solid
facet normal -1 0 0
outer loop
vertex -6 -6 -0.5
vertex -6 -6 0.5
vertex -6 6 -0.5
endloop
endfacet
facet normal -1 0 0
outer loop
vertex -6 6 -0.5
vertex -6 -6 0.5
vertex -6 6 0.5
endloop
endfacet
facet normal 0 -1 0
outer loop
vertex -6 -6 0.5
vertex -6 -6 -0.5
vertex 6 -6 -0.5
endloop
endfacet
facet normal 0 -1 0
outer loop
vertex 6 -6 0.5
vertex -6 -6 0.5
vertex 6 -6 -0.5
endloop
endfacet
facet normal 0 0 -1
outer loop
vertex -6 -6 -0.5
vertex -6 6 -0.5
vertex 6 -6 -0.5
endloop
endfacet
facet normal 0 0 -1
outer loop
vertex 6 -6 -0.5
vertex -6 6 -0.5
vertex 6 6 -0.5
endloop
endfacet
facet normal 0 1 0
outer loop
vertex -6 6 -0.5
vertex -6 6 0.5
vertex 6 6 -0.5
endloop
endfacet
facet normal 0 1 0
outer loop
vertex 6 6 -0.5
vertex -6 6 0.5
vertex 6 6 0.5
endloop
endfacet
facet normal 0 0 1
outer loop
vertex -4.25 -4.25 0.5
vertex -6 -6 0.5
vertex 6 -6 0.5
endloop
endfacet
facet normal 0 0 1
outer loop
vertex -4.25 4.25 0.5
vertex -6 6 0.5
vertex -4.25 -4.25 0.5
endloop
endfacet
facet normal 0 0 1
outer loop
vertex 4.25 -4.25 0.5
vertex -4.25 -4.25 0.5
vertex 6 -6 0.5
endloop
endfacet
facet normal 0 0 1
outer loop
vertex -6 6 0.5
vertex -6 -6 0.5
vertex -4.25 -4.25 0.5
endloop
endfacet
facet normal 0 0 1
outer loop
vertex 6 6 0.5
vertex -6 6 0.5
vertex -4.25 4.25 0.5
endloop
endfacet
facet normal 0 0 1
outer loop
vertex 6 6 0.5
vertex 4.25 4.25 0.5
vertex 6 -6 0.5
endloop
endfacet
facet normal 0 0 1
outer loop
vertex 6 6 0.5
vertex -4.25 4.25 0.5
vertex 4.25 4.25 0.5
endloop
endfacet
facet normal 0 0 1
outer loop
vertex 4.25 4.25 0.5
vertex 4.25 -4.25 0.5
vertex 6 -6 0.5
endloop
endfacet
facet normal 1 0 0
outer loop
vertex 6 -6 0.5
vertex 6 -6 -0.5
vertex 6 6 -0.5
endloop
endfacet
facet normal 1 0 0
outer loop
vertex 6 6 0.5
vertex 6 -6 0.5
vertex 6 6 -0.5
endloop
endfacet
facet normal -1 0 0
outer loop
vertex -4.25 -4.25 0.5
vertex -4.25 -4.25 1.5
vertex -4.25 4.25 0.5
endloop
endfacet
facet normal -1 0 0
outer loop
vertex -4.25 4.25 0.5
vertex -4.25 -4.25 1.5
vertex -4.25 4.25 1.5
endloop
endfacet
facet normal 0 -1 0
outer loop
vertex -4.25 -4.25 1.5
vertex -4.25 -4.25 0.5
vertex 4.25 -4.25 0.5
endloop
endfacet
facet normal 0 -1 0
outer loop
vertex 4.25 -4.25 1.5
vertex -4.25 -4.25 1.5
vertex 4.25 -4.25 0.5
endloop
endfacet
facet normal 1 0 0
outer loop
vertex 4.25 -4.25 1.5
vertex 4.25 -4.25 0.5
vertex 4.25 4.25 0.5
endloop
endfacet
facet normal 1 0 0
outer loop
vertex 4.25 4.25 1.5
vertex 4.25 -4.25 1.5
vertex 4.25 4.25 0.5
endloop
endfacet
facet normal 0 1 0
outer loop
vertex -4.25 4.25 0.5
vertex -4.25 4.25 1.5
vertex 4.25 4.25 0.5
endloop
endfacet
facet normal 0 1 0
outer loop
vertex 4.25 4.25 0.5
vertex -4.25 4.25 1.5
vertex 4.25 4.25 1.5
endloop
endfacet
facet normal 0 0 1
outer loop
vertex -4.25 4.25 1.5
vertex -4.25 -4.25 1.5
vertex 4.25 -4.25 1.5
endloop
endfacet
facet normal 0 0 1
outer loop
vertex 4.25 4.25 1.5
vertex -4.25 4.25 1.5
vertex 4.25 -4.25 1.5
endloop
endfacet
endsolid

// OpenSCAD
union(){
cube([12,12,1],center=true); 
translate([0,0,1]) cube([8.5,8.5,1],center=true); 
}
